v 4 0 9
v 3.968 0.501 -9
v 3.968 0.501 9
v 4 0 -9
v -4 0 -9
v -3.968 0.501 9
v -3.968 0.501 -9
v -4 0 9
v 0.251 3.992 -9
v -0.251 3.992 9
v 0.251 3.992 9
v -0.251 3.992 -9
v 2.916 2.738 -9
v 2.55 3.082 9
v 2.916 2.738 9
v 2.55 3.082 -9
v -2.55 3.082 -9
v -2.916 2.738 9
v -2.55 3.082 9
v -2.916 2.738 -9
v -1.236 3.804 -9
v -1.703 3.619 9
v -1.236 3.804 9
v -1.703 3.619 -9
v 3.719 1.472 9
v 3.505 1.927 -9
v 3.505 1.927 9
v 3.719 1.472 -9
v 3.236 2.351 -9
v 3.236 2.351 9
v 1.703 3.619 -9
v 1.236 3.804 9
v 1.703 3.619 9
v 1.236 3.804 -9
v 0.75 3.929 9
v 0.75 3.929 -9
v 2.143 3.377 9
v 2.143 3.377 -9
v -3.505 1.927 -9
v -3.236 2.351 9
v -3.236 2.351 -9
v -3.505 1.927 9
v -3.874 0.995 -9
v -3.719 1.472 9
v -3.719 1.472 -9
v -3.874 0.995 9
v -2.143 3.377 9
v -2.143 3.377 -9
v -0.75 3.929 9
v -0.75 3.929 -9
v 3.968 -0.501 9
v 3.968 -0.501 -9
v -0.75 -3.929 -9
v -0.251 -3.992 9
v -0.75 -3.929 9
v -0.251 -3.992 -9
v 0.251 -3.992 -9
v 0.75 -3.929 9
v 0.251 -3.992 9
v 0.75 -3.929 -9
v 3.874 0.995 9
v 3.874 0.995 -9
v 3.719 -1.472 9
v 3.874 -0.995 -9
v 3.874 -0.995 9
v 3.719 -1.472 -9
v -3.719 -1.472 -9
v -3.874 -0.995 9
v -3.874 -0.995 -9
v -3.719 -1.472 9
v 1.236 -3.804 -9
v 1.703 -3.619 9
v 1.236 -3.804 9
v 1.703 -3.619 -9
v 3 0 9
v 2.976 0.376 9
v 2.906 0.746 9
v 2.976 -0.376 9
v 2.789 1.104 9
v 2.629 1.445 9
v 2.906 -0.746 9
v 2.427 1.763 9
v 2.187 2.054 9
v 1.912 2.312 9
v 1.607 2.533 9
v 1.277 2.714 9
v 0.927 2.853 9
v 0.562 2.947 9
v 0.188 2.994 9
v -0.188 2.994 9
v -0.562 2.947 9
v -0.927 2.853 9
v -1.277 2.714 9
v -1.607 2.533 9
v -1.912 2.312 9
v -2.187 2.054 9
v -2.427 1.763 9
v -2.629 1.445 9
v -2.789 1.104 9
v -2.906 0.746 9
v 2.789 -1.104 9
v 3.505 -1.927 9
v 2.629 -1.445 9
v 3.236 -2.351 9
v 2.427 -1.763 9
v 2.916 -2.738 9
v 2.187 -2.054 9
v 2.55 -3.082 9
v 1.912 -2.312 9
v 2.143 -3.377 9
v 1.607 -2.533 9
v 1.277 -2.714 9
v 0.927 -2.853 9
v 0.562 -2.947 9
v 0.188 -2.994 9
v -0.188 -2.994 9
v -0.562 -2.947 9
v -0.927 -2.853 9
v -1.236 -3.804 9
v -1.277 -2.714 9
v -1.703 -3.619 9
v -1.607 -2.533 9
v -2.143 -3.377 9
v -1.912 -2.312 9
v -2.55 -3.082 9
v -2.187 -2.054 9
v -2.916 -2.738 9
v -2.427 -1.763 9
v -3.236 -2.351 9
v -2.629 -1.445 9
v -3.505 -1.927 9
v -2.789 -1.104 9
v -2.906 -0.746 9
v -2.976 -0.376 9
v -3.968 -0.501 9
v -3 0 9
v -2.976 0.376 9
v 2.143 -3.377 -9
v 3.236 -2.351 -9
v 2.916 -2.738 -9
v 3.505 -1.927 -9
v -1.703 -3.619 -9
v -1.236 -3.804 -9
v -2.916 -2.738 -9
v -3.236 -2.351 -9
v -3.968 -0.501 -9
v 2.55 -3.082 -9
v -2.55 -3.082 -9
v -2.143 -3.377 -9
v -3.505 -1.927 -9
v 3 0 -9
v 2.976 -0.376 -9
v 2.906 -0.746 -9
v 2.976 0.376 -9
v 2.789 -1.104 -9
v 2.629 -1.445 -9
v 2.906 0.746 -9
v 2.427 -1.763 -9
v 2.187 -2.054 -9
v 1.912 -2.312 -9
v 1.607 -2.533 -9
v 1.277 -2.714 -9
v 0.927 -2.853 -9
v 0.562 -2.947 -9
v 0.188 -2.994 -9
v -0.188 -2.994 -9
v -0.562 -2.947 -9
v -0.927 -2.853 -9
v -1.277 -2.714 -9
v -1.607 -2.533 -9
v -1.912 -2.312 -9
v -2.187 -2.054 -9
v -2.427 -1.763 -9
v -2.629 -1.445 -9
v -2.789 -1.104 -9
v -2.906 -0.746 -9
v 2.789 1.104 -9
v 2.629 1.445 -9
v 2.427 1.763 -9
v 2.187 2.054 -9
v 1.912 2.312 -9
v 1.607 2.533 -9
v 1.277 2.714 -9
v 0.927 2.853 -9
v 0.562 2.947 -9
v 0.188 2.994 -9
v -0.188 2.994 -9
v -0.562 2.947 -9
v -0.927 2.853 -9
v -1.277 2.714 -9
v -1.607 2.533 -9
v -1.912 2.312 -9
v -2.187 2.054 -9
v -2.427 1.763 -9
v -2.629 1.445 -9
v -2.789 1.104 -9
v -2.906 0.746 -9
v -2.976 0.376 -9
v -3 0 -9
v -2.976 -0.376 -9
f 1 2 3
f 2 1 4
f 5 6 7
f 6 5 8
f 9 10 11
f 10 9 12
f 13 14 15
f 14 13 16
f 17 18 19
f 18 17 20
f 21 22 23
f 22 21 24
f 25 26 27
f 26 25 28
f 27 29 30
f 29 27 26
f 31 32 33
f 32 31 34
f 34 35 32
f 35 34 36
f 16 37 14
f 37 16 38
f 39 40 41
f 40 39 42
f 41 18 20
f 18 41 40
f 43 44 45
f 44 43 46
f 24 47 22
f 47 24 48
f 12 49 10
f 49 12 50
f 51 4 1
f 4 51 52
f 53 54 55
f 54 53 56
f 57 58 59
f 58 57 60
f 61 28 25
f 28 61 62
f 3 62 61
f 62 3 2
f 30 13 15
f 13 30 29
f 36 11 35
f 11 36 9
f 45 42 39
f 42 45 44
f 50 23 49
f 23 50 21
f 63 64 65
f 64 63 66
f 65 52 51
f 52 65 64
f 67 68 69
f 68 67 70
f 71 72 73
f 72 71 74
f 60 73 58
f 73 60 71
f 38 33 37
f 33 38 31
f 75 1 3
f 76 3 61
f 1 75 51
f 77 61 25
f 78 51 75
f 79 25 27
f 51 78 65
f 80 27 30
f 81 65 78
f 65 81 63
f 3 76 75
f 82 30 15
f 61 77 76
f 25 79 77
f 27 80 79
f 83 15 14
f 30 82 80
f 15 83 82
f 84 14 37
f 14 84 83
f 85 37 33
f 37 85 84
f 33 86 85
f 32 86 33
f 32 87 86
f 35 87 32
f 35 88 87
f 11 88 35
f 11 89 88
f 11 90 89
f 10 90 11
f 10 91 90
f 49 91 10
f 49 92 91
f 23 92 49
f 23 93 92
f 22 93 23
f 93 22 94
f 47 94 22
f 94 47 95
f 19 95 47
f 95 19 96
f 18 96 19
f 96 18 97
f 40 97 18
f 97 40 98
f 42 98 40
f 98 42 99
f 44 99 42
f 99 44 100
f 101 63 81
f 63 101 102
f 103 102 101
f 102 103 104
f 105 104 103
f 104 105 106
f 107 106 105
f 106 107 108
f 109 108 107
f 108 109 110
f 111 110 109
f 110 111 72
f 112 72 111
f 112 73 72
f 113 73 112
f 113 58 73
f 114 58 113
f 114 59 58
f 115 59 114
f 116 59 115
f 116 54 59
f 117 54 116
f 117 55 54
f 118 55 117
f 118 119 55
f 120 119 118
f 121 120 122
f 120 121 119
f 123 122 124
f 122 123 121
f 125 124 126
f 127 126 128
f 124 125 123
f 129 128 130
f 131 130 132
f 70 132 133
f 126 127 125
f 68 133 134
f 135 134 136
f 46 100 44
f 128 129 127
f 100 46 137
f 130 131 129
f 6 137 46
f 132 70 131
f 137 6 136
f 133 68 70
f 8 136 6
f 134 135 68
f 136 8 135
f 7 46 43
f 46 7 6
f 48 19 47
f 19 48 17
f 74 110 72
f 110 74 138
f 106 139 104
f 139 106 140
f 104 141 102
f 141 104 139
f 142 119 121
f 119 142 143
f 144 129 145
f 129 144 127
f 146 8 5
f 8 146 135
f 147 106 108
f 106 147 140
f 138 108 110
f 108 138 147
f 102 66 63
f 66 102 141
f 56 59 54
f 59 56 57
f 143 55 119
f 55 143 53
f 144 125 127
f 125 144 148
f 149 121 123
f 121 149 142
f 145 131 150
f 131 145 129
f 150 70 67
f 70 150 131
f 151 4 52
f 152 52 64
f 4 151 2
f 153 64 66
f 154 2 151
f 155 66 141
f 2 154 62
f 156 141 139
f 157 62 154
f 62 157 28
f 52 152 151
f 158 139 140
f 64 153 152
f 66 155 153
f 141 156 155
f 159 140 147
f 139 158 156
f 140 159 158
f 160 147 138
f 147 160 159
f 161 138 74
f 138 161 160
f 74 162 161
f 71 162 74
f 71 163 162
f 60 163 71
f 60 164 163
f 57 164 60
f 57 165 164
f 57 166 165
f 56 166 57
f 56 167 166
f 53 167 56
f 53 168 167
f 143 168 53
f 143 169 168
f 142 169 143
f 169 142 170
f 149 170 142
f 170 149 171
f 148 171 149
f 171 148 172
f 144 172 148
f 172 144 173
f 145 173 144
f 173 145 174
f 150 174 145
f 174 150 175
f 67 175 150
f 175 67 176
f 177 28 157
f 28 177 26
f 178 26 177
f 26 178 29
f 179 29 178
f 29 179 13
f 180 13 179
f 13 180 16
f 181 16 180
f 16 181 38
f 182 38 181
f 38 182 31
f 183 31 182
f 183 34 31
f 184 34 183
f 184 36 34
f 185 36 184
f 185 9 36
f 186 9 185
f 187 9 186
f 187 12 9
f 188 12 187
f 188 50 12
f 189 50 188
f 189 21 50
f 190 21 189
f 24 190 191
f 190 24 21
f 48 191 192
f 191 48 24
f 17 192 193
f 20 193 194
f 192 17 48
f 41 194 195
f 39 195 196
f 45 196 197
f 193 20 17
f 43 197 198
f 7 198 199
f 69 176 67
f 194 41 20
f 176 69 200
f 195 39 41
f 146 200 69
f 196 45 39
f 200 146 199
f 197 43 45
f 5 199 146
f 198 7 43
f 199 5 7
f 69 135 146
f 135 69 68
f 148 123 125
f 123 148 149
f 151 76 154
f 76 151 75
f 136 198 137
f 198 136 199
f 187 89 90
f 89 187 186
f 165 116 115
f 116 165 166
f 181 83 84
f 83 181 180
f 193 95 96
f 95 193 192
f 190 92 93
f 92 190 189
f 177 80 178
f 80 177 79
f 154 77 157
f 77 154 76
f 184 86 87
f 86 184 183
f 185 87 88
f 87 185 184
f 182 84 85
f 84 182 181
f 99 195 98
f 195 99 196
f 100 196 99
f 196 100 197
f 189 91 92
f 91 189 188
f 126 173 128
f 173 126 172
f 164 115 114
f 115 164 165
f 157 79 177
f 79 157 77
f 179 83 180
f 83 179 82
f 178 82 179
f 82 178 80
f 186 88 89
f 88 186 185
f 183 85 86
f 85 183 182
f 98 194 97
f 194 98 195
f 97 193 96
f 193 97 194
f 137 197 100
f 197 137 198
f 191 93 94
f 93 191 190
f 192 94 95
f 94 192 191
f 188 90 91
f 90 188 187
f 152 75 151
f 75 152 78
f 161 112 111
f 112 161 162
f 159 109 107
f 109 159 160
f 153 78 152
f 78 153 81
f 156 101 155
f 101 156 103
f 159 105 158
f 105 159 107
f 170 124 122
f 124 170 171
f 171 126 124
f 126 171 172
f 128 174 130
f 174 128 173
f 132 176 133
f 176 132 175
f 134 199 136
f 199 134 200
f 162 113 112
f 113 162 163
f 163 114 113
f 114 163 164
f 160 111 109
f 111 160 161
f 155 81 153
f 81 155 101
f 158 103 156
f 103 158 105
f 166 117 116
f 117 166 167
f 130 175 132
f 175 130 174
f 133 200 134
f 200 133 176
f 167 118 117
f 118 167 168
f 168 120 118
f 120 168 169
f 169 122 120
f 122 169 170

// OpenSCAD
$fn = 50;


difference() {
	union() {
		translate(v = [0, 0, -9.0000000000]) {
			cylinder(h = 18, r = 4.0000000000);
		}
	}
	union() {
		translate(v = [0, 0, -100.0000000000]) {
			cylinder(h = 200, r = 3.0000000000);
		}
	}
}
